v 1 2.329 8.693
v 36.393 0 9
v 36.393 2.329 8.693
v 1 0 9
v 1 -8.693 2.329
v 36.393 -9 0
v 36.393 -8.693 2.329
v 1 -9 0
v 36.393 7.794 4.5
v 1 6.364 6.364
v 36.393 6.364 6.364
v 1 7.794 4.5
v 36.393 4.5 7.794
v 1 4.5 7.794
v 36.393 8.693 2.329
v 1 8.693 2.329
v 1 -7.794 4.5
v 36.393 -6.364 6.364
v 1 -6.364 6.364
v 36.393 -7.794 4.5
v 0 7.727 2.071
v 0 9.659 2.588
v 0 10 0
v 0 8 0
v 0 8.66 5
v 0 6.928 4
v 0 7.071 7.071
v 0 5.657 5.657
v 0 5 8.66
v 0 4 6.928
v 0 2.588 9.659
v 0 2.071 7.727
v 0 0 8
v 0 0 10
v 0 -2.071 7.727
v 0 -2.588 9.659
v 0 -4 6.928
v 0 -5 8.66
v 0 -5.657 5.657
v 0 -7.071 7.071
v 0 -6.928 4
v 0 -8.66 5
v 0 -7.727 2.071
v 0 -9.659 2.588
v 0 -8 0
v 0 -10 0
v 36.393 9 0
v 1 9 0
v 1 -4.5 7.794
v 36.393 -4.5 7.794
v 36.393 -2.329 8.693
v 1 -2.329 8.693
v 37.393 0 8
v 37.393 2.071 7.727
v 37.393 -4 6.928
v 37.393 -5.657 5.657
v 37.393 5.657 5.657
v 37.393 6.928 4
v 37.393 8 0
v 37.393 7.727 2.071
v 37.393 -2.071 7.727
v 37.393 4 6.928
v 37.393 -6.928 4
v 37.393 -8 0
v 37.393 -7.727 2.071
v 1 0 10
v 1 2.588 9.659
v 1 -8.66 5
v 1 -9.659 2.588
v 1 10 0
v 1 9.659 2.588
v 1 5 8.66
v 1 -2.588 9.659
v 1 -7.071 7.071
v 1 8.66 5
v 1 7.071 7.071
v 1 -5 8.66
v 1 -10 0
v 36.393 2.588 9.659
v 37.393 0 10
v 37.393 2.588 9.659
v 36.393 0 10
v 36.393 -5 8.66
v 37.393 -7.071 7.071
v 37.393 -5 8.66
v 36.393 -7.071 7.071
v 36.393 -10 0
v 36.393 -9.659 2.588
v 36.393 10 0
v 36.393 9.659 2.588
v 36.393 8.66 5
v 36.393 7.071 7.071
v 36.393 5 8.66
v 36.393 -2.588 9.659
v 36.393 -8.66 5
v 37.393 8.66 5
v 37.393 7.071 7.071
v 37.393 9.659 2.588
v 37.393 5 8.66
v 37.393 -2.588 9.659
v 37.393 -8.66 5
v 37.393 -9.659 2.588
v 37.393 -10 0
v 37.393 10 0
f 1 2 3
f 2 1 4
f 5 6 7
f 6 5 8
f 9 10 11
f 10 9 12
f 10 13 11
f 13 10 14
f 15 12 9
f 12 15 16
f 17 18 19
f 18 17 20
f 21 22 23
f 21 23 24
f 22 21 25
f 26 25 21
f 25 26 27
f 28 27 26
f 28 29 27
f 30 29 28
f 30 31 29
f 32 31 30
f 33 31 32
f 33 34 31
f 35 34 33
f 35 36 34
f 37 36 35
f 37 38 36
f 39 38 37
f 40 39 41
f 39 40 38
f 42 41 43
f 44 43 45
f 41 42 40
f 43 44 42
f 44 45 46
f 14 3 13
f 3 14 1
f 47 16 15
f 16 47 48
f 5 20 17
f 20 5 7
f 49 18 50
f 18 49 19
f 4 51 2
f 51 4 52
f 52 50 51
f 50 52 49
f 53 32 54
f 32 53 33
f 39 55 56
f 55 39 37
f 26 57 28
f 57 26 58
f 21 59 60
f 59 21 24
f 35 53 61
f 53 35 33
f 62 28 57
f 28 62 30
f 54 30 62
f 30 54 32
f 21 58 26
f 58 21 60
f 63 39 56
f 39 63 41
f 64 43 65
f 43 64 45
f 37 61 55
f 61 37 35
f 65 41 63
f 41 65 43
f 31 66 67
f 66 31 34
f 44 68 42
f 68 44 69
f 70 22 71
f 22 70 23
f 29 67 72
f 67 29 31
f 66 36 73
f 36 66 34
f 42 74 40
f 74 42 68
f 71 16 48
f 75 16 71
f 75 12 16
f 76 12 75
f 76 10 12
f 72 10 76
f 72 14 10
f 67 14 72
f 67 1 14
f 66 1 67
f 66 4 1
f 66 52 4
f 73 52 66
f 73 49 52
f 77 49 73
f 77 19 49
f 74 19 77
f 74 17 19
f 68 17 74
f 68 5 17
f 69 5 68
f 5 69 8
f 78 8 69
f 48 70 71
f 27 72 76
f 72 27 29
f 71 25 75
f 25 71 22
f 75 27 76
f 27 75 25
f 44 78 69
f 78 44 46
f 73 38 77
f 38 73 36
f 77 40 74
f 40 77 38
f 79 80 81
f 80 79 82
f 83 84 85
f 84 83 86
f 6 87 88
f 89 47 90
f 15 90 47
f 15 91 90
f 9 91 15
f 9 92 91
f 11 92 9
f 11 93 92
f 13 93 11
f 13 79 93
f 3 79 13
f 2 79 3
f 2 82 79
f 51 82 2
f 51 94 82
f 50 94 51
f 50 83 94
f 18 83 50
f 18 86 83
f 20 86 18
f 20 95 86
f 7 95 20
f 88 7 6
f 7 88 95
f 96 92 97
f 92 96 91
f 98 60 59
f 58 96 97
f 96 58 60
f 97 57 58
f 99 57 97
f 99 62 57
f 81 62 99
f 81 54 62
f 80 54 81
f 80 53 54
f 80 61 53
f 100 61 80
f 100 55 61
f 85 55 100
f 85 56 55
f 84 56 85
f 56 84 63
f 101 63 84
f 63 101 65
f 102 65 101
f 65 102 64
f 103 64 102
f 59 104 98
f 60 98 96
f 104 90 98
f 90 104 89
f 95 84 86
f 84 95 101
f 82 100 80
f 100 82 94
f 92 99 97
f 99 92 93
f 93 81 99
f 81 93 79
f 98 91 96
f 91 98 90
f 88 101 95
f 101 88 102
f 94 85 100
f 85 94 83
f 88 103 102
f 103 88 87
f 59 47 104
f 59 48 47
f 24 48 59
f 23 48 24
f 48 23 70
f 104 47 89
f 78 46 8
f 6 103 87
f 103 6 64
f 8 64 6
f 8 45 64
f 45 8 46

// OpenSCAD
// file: ../build_environments.scad
// build_environments.scad: modules to build level sections
//

module pool(diameter=10.0, wall_height=2.0, step_width=3.0, connections=[])
{
    difference() {
        union() {
        difference() {
            cylinder(h=0.5,r1=diameter+step_width,r2=diameter+step_width,$fn=48);
            translate([0,0,-0.1])
                cylinder(h=0.7,r1=diameter,r2=diameter,$fn=48);
        }
        difference() {
            cylinder(h=wall_height,r1=diameter+step_width+1.0,r2=diameter+step_width+1.0,$fn=48);
            translate([0,0,-0.1])
                cylinder(h=wall_height+0.2,r1=diameter+step_width,r2=diameter+step_width,$fn=48);
        }
        }
    
        for (c = connections)
        {
            rotate([0,90,0]) {
                angle = atan2(c[1],c[0]);
                rotate([-angle,0,0]) {
                    cylinder(h=diameter+5.0,r1=c[2],r2=c[2],$fn=48);
                }
            }
        }
    }
}

module straight(length=10.0, width=2.0, dy1=0.0, dy2=0.0, dz=0.0)
{
    dims = [0, 0, 0, 0, 0, (dz/length)];
    matrix = [
        [ 1, dims[0], dims[1], 0 ],
        [ dims[2], 1, dims[4], 0 ],
        [ dims[5], dims[3], 1, 0 ],
        [ 0, 0, 0, 1 ]
    ];
    multmatrix(matrix)
    difference() {
        translate([dy1,0,0])
        union() {
            rotate([0,90,0]) {
                difference() {
                    cylinder(h=(length-dy1-dy2),r1=width+1.0,r2=width+1.0,$fn=24);
                    translate([0,0,-0.1])
                        cylinder(h=(length-dy1-dy2+0.2),r1=width,r2=width,$fn=24);
                }
                difference() {
                    cylinder(h=1.0,r1=width+2.0,r2=width+2.0,$fn=24);
                    translate([0,0,-0.1])
                        cylinder(h=1.2,r1=width,r2=width,$fn=24);
                }
                translate([0,0,(length-dy1-dy2)-1.0]) {
                    difference() {
                        cylinder(h=1.0,r1=width+2.0,r2=width+2.0,$fn=24);
                        translate([0,0,-0.1])
                            cylinder(h=1.2,r1=width,r2=width,$fn=24);
                    }
                }
            }
        }
        translate([0,0,-(2*width+4.0)/2])
            cube([3*length,3*length,2*width+4.0],center=true);
    }
}

module curve(p0=[0,0], center=[0,0], dir=1, angle=0.0, width=2.0)
{
    radius = sqrt((p0[0]-center[0])*(p0[0]-center[0]) + (p0[1]-center[1])*(p0[1]-center[1]));
    if (dir == 0) {
        difference() {
            rotate([0,0,-90])
            difference() {
                rotate_extrude(angle = angle, convexity = 10, $fn=32)
                    translate([radius, 0, 0])
                        circle(r = width+1.0,$fn=24);
                rotate([0,0,-1.0])
                    rotate_extrude(angle = angle+2.0, convexity = 10, $fn=32)
                        translate([radius, 0, 0])
                            circle(r = width,$fn=24);
            }
            translate([0,0,-(2*width+4.0)/2])
                cube([5*radius,5*radius,2*width+4.0],center=true);
        }
    }
    else {
        difference() {
            rotate([0,0,90])
            difference() {
                rotate_extrude(angle = -angle, convexity = 10, $fn=32)
                    translate([radius, 0, 0])
                        circle(r = width+1.0,$fn=24);
                rotate([0,0,1.0])
                    rotate_extrude(angle = -angle-2.0, convexity = 10, $fn=32)
                        translate([radius, 0, 0])
                            circle(r = width,$fn=24);
            }
            translate([0,0,-(2*width+4.0)/2])
                cube([5*radius,5*radius,2*width+4.0],center=true);
        }
    }

}

// test pool
//pool(diameter=12.0000, wall_height=3.0000, step_width=3.0000, connections=[[0.0000,-26.0000,2.0000], [23.6074,0.0000,2.0000]]);

// test straight, slope
//straight(length=26.0000, width=2.0000, dy1=11.8322, dy2=6.7082, dz=0.0000);
//straight(length=29.1549, width=12.0000, dy1=0.0000, dy2=0.0000, dz=-15.0000);

// test curve
//curve(p0=[23.6074, 0.0000], center=[23.6074, 5.0000], dir=0, angle=60.1011, width=2.0000);
//curve(p0=[33.6426, 12.4219], center=[37.9771, 9.9295], dir=1, angle=120.4627, width=2.0000);
// main file
use <../build_environments.scad>;
straight(length=37.3926, width=8.0000, dy1=0.0000, dy2=0.0000, dz=0.0000);
